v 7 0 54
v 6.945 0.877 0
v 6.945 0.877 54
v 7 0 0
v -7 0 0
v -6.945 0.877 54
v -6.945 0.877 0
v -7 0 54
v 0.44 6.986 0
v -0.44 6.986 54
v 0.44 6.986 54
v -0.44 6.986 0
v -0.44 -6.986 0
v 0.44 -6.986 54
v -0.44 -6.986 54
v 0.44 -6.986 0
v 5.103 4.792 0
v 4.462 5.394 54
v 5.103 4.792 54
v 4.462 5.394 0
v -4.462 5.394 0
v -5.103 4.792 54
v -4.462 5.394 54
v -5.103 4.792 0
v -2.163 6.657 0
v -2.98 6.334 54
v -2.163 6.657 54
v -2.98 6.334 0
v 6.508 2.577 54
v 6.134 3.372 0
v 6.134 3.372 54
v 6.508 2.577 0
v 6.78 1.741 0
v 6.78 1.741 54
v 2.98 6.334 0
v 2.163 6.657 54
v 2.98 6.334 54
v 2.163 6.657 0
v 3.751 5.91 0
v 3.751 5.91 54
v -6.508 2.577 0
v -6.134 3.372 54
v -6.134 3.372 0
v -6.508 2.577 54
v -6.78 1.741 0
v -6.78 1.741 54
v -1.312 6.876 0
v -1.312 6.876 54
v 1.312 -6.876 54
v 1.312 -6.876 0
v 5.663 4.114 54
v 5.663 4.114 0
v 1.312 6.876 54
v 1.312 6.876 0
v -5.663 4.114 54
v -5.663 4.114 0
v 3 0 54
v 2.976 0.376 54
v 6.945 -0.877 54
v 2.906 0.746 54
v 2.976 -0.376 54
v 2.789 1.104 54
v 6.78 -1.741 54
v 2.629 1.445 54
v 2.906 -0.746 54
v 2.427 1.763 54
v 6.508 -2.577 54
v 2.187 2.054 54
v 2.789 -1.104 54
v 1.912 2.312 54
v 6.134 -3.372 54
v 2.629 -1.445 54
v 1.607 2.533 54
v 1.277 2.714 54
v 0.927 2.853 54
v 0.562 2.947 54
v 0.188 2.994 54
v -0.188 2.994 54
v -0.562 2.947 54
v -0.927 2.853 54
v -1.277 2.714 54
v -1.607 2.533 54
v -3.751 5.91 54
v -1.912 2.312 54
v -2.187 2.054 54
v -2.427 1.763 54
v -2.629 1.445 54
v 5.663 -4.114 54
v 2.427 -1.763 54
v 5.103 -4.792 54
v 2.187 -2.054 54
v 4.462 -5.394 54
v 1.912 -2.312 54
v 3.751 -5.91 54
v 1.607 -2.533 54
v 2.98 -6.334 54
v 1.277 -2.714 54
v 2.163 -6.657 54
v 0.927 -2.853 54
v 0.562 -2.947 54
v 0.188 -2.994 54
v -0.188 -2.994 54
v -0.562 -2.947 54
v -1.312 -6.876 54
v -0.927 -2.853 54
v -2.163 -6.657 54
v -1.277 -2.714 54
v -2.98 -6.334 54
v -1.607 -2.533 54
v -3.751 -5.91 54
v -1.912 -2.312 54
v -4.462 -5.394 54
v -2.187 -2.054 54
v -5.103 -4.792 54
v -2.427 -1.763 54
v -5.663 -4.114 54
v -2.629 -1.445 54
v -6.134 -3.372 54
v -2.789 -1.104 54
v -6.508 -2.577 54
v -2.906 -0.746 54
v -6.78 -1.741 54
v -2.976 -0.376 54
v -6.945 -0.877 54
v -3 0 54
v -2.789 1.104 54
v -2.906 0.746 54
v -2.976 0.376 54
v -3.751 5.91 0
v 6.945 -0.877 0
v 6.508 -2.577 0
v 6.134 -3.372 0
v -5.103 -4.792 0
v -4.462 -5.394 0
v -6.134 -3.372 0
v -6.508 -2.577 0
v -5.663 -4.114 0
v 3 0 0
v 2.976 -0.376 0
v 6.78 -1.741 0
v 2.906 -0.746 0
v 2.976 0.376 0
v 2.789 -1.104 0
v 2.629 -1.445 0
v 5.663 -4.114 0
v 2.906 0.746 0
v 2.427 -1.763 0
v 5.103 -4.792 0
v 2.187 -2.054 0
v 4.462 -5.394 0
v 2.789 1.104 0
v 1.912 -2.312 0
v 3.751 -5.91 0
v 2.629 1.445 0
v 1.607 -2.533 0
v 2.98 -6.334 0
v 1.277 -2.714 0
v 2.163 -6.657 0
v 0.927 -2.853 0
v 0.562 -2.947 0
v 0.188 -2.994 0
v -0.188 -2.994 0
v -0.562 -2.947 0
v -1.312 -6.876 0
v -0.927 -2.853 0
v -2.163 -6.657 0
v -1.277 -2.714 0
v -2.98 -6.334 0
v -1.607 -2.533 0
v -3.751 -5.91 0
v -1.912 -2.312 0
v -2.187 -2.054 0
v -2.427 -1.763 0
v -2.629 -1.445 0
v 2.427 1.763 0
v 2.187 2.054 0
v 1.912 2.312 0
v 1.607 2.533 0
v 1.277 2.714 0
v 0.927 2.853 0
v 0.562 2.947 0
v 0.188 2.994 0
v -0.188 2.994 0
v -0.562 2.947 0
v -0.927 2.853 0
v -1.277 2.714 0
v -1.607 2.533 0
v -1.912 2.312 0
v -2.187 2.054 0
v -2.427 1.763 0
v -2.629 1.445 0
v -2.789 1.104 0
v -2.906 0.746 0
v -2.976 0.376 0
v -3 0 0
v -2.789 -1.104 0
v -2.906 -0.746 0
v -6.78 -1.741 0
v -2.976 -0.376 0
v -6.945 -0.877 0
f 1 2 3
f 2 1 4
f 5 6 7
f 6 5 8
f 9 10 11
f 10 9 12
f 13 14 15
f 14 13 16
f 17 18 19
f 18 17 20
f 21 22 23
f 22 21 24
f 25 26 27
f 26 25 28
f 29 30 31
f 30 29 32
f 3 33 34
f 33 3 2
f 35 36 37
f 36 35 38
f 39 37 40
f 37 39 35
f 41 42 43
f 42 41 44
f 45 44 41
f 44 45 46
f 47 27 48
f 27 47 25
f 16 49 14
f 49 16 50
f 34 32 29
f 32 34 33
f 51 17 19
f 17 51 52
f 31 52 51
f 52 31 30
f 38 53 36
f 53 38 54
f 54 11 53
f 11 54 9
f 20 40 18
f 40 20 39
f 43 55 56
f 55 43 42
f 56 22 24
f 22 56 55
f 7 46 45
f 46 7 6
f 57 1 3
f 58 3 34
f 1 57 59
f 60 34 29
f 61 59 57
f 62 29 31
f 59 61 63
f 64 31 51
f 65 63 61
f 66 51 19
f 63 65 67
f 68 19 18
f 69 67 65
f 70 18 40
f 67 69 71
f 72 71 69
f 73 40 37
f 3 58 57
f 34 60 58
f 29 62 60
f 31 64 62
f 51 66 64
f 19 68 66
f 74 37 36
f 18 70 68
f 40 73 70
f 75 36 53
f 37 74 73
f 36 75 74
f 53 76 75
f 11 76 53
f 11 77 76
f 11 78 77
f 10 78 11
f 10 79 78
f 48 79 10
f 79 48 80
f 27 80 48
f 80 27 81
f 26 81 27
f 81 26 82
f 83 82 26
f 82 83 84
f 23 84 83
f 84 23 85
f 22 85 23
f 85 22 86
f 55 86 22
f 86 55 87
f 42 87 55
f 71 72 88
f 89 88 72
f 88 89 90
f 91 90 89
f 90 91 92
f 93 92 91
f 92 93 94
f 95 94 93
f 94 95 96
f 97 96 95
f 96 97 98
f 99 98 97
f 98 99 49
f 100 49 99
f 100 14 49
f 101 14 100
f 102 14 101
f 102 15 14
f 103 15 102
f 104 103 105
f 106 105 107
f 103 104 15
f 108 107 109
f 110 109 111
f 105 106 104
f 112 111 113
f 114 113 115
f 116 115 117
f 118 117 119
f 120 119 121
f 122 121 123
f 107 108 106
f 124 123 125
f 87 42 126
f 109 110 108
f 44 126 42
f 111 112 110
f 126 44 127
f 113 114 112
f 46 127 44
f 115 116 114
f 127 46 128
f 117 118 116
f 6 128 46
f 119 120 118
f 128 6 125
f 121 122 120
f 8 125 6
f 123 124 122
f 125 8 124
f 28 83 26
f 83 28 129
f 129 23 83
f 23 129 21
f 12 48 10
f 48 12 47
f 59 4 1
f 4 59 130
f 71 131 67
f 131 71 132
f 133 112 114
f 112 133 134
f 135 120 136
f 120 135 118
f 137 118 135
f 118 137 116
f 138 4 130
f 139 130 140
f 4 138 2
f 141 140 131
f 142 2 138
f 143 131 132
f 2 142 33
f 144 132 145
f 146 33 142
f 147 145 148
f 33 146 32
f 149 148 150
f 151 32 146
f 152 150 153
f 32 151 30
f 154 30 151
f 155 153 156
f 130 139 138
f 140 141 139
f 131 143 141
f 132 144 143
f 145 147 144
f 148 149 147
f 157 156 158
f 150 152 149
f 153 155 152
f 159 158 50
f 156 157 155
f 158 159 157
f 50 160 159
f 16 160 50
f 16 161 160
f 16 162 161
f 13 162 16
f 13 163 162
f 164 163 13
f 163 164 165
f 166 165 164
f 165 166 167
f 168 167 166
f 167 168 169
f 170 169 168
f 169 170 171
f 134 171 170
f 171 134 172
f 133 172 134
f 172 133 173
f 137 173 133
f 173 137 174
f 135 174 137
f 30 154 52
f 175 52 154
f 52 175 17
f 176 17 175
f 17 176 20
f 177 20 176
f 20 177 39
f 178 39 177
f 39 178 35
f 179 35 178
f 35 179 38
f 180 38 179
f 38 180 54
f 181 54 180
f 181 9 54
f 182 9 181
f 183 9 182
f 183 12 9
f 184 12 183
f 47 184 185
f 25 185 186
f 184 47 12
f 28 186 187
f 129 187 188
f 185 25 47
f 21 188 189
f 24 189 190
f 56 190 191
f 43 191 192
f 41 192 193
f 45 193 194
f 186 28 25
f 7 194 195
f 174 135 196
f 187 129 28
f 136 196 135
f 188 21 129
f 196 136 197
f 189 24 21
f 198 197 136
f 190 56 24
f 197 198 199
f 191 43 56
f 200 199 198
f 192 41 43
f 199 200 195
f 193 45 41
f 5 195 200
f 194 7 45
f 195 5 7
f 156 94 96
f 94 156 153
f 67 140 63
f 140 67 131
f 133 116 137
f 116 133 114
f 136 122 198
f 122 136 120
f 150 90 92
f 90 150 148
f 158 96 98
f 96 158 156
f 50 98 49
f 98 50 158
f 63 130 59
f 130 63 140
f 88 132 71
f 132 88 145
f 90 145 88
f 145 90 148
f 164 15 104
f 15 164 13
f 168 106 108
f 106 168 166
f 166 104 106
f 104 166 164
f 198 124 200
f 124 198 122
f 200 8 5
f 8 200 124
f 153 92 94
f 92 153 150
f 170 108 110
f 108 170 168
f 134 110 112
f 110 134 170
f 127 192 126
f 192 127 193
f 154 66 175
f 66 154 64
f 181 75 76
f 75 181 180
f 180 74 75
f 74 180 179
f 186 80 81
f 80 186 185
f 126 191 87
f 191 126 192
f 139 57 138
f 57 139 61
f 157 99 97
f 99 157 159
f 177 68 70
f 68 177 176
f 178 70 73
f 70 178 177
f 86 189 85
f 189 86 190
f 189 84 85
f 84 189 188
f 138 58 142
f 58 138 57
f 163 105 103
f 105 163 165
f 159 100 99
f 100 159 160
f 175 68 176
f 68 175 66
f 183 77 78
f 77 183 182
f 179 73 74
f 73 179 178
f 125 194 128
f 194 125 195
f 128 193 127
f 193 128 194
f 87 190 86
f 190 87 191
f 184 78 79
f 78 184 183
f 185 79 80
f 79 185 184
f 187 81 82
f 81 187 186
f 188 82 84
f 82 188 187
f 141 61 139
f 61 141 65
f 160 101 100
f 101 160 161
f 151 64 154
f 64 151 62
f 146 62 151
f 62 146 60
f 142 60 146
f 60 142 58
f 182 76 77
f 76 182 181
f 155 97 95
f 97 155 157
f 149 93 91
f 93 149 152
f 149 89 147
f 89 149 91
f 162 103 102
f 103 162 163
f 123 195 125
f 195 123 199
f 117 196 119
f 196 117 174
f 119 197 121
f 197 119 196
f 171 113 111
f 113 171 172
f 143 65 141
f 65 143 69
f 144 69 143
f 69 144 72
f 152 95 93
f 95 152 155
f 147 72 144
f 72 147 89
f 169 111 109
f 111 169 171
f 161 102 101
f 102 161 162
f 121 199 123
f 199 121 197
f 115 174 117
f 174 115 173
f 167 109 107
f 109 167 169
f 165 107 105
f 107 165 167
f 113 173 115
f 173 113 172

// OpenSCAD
$fn = 50;


difference() {
	union() {
		cylinder(h = 54, r = 7.0000000000);
	}
	union() {
		translate(v = [0, 0, -100]) {
			cylinder(h = 200, r = 3.0000000000);
		}
	}
}
